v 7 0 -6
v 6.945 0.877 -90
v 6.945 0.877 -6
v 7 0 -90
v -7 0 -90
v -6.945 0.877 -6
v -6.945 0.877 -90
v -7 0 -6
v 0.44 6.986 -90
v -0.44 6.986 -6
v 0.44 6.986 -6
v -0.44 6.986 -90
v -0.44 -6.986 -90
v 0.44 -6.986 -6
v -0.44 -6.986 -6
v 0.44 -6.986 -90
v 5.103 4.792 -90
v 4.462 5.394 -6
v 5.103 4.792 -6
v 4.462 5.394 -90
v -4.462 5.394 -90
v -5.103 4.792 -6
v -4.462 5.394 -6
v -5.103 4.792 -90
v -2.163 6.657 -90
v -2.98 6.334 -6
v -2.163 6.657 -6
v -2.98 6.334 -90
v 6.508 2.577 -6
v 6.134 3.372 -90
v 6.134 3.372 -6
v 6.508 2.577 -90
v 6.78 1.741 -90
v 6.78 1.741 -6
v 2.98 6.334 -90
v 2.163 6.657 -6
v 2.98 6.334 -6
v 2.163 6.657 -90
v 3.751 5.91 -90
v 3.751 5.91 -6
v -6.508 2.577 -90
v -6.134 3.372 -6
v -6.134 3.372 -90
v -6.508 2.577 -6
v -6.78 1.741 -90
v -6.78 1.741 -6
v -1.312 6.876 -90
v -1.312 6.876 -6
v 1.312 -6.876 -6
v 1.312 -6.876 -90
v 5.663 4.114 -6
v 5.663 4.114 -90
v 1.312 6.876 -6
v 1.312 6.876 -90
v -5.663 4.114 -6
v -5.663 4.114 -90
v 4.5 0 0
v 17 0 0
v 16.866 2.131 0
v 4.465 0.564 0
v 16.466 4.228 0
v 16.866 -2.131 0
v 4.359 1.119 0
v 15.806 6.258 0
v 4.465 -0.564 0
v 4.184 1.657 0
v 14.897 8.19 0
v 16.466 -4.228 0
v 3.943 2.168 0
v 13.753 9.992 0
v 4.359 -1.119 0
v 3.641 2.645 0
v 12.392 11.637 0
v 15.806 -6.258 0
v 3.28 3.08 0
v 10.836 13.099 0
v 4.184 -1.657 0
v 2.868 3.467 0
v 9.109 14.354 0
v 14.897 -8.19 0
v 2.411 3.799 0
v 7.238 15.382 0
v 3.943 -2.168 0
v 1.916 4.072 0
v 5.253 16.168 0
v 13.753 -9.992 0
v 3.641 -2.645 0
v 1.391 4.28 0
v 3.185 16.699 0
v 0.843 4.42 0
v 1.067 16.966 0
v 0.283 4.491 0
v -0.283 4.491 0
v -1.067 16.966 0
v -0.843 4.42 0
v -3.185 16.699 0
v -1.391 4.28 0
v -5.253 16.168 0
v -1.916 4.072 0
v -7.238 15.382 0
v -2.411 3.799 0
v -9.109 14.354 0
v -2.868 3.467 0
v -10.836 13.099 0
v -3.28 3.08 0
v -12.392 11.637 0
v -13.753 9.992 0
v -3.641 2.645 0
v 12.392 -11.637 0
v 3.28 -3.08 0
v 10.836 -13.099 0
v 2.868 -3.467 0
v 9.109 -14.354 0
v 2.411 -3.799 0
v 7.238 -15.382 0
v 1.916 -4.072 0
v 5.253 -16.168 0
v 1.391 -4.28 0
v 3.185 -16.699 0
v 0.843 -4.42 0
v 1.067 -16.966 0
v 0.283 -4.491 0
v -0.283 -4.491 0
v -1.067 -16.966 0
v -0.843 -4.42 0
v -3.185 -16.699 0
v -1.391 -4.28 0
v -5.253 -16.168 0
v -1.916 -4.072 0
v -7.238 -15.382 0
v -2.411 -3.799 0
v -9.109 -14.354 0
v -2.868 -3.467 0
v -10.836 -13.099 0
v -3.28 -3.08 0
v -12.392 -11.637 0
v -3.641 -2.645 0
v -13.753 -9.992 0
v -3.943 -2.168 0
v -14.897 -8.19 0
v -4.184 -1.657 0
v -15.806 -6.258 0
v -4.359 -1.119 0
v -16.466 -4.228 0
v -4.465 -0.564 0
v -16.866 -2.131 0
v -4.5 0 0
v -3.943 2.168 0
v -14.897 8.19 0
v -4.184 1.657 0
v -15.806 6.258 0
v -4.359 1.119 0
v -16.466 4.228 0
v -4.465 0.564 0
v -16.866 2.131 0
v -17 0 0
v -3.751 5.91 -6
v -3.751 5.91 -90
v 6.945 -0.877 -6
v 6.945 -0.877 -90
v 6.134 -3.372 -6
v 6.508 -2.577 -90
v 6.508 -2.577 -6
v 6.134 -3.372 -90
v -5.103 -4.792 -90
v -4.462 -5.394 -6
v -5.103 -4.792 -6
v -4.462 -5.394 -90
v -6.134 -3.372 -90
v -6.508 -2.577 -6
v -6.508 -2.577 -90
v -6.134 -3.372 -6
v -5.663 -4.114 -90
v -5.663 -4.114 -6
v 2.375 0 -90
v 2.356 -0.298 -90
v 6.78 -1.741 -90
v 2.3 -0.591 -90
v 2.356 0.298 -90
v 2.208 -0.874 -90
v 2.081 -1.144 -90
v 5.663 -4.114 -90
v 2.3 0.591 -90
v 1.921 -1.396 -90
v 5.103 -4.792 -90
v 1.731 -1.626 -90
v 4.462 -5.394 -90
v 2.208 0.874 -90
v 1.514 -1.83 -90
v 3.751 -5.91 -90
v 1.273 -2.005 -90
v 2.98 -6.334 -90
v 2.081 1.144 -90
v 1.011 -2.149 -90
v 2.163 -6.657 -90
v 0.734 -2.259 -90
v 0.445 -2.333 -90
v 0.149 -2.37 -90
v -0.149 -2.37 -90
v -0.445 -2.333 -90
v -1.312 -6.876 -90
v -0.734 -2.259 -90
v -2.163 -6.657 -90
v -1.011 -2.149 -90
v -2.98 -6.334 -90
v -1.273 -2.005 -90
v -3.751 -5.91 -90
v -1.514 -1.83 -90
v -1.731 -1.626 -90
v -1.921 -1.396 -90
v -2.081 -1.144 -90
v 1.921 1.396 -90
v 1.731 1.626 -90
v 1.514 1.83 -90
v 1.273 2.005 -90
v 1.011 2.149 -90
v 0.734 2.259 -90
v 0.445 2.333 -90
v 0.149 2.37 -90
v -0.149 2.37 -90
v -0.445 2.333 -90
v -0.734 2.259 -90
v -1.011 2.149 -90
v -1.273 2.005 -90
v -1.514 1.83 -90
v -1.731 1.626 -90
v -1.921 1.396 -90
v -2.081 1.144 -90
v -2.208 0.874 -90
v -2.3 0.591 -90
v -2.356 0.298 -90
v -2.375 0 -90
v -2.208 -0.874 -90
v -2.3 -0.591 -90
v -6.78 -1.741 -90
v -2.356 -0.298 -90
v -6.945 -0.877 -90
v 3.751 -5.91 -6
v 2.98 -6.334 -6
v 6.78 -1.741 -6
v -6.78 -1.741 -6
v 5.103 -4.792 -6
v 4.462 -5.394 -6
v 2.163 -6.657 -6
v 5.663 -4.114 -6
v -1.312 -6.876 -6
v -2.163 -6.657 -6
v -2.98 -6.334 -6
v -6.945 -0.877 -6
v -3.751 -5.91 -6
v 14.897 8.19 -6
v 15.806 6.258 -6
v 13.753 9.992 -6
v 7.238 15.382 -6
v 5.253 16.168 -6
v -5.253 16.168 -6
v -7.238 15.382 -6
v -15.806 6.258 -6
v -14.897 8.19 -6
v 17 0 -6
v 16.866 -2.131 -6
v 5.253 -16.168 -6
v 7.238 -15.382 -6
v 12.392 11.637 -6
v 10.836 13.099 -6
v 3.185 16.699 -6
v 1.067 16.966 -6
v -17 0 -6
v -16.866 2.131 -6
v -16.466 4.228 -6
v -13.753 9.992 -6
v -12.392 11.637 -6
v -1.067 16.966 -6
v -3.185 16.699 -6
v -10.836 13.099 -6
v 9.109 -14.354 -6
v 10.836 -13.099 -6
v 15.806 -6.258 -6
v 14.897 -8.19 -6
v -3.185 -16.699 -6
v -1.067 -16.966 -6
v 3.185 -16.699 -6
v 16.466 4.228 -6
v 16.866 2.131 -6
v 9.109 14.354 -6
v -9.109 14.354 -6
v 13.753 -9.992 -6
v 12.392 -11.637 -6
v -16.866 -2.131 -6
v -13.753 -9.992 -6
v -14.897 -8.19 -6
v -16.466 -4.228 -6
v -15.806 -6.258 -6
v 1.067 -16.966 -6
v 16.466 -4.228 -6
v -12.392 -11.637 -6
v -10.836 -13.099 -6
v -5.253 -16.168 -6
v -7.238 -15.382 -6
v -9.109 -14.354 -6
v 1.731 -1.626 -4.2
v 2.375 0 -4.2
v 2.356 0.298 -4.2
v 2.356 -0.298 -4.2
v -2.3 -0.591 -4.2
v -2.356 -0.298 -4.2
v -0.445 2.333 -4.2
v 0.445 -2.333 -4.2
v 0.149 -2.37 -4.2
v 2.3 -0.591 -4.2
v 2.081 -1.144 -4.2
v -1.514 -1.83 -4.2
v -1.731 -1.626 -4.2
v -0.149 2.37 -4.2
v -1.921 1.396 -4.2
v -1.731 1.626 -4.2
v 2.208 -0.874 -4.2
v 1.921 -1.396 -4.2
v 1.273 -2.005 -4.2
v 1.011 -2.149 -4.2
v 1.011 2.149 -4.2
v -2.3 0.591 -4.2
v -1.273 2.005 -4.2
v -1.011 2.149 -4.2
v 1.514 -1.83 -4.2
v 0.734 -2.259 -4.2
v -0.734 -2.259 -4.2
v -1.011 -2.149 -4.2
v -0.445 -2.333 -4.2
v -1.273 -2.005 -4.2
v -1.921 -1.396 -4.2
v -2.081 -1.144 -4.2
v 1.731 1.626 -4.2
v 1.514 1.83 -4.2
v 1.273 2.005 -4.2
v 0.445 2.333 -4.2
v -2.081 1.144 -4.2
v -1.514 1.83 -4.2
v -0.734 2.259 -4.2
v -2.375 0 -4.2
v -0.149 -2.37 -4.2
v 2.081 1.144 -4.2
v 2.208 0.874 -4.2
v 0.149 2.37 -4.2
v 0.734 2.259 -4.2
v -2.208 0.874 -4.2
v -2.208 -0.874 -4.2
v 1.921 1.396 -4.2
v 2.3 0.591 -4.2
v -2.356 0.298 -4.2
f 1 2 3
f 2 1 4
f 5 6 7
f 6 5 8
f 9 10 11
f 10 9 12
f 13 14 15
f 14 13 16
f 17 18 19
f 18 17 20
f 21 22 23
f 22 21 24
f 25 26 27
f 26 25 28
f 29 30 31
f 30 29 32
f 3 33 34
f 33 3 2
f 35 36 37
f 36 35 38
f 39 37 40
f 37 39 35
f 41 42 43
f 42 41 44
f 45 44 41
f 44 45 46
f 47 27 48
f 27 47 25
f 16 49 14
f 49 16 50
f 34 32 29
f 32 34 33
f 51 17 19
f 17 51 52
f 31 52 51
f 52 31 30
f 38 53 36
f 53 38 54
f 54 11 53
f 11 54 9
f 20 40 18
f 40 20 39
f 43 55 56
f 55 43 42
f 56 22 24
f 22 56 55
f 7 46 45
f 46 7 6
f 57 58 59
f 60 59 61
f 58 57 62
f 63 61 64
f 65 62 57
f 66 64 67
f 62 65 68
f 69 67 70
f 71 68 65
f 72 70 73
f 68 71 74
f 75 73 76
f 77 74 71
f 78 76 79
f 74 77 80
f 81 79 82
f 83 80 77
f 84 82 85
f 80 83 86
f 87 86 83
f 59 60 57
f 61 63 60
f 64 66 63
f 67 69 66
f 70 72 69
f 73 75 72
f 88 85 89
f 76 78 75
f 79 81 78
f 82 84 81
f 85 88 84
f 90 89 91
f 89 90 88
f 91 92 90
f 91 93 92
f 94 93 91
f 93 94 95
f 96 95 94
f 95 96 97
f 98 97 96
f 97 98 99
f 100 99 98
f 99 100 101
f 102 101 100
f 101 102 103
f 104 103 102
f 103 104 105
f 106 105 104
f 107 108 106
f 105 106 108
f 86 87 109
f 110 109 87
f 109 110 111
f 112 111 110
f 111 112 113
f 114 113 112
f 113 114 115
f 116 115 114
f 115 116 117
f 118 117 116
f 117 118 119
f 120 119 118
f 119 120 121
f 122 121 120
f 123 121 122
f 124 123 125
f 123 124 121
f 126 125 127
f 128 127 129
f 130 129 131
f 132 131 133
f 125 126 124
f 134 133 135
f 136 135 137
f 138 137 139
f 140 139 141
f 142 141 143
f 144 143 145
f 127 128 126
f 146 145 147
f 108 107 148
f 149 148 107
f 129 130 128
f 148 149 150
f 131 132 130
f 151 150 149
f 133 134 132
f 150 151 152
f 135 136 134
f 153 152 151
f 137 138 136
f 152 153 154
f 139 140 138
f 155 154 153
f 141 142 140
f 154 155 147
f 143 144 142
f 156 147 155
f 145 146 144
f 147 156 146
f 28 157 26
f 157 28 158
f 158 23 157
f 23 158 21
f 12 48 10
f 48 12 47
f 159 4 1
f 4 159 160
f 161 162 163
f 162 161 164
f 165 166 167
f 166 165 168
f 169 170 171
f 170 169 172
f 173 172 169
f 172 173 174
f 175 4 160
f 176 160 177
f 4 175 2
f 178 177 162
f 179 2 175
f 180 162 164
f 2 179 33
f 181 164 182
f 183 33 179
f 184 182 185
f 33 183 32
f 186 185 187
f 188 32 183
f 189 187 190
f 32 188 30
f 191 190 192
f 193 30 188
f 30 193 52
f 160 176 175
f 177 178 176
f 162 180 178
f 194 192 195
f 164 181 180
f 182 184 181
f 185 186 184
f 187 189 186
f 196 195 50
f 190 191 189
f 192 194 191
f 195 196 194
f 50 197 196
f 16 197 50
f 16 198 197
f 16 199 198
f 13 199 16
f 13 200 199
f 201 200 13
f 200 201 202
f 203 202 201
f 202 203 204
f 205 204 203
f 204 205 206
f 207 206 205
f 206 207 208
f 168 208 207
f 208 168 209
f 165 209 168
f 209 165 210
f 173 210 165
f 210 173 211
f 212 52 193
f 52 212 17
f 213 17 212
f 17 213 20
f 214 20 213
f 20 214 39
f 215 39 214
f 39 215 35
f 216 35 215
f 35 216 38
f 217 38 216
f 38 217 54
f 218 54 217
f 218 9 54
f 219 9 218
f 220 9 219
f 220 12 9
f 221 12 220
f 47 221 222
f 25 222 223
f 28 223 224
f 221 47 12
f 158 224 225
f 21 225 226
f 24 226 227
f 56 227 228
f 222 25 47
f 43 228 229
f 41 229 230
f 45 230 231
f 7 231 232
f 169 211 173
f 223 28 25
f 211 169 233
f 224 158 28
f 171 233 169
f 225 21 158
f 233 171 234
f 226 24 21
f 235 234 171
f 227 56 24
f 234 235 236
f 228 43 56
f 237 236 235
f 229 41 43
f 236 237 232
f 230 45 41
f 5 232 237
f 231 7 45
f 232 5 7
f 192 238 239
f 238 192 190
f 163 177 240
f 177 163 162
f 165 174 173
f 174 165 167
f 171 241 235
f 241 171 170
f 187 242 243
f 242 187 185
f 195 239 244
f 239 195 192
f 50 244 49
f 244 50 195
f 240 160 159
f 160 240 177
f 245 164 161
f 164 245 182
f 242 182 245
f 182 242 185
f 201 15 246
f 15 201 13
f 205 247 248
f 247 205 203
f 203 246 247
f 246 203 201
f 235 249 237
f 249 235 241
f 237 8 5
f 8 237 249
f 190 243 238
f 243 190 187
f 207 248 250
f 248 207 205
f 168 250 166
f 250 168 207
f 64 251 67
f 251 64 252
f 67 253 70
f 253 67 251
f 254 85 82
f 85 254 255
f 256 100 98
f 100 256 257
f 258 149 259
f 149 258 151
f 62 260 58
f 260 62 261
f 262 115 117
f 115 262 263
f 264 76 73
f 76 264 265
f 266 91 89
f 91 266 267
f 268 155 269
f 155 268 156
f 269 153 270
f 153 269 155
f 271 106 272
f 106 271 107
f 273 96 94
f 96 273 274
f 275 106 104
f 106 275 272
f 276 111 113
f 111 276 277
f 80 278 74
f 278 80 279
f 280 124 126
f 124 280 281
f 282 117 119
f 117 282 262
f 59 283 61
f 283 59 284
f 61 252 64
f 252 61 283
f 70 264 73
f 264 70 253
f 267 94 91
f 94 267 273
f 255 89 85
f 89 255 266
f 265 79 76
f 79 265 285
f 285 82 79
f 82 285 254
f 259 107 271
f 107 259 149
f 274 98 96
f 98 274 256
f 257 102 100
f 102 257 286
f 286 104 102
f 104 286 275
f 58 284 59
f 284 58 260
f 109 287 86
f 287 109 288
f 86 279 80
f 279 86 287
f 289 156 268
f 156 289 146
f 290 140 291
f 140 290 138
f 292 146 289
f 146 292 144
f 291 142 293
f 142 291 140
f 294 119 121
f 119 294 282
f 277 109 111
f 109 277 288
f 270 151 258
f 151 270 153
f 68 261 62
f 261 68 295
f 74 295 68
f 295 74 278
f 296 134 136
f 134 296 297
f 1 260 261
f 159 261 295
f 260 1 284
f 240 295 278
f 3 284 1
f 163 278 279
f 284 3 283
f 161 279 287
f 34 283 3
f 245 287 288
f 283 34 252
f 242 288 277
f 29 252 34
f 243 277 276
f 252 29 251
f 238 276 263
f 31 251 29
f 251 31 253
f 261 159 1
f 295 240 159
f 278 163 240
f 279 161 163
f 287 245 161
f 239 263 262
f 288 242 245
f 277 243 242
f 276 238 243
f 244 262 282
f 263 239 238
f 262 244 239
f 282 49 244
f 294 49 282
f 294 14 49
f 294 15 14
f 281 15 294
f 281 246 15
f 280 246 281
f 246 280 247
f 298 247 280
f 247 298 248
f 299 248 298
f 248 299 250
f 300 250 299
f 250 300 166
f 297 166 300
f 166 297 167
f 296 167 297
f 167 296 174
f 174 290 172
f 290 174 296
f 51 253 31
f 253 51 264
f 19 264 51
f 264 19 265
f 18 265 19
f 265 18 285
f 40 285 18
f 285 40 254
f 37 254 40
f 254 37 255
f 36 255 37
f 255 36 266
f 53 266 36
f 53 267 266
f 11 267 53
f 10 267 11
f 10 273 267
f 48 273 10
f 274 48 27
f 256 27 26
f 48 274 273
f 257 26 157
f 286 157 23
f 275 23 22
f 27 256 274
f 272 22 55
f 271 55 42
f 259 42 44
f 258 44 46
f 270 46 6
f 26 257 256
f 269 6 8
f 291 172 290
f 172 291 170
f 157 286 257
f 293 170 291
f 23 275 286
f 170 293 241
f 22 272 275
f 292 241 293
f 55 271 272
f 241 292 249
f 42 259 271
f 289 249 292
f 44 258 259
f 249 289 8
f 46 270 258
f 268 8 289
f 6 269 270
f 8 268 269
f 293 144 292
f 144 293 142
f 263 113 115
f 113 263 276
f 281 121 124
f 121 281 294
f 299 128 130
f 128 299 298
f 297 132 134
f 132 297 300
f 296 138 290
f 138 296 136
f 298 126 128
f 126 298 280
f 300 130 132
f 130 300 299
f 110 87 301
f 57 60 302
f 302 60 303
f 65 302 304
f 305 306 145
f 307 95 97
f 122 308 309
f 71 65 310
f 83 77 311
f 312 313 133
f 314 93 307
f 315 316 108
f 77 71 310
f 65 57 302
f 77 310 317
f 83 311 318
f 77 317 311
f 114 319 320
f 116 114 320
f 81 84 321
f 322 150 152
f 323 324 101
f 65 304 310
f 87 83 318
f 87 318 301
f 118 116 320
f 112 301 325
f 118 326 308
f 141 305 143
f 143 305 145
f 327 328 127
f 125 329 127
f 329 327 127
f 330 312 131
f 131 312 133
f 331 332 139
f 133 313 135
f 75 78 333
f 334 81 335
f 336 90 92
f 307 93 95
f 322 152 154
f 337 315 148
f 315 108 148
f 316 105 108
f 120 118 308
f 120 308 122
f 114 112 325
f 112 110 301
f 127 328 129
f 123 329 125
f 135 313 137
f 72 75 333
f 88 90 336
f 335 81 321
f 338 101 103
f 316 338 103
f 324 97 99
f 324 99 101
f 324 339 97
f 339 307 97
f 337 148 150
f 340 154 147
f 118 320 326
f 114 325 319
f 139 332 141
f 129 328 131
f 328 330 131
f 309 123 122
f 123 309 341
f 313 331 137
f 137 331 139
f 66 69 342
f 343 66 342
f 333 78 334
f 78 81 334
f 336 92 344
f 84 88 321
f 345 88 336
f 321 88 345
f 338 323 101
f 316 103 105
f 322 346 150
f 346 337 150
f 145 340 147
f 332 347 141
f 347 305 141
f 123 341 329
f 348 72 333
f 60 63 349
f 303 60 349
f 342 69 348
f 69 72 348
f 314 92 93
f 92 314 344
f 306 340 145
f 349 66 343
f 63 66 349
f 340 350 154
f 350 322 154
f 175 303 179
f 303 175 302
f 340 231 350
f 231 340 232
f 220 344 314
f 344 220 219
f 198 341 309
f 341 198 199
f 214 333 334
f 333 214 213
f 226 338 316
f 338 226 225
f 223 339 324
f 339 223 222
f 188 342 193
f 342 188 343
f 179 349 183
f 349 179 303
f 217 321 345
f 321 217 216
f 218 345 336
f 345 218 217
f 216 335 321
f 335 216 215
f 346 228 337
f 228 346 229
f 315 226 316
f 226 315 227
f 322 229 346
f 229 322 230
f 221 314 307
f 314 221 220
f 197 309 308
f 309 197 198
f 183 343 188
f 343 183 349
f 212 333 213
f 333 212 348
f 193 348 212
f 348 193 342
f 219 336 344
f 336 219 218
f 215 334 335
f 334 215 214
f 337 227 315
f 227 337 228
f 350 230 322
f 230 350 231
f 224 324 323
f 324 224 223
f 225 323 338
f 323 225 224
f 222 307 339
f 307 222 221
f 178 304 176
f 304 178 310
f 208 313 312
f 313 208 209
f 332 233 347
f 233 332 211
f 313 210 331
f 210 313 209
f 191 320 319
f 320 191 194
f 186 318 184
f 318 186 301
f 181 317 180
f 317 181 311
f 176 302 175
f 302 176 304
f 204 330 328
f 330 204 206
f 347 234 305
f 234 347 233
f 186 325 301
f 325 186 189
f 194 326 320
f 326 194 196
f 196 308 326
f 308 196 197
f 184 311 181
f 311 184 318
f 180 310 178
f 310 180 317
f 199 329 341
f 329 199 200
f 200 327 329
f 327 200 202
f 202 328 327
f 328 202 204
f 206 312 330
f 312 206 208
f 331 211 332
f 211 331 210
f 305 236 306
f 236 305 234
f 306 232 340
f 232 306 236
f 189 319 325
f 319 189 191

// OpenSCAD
$fn = 50;


difference() {
	union() {
		translate(v = [0, 0, -90.0000000000]) {
			cylinder(h = 90, r = 7.0000000000);
		}
		translate(v = [0, 0, -6.0000000000]) {
			cylinder(h = 6, r = 17.0000000000);
		}
	}
	union() {
		translate(v = [0, 0, 0]) {
			rotate(a = [0, 0, 0]) {
				difference() {
					union() {
						#translate(v = [0, 0, -90.0000000000]) {
							cylinder(h = 90, r = 2.2500000000);
						}
						#translate(v = [0, 0, -4.2000000000]) {
							cylinder(h = 4.2000000000, r = 7.0000000000, r1 = 2.3750000000, r2 = 4.5000000000);
						}
						#translate(v = [0, 0, -90.0000000000]) {
							cylinder(h = 90, r = 2.3750000000);
						}
						#translate(v = [0, 0, -90.0000000000]) {
							cylinder(h = 90, r = 2.2500000000);
						}
					}
					union();
				}
			}
		}
	}
}
